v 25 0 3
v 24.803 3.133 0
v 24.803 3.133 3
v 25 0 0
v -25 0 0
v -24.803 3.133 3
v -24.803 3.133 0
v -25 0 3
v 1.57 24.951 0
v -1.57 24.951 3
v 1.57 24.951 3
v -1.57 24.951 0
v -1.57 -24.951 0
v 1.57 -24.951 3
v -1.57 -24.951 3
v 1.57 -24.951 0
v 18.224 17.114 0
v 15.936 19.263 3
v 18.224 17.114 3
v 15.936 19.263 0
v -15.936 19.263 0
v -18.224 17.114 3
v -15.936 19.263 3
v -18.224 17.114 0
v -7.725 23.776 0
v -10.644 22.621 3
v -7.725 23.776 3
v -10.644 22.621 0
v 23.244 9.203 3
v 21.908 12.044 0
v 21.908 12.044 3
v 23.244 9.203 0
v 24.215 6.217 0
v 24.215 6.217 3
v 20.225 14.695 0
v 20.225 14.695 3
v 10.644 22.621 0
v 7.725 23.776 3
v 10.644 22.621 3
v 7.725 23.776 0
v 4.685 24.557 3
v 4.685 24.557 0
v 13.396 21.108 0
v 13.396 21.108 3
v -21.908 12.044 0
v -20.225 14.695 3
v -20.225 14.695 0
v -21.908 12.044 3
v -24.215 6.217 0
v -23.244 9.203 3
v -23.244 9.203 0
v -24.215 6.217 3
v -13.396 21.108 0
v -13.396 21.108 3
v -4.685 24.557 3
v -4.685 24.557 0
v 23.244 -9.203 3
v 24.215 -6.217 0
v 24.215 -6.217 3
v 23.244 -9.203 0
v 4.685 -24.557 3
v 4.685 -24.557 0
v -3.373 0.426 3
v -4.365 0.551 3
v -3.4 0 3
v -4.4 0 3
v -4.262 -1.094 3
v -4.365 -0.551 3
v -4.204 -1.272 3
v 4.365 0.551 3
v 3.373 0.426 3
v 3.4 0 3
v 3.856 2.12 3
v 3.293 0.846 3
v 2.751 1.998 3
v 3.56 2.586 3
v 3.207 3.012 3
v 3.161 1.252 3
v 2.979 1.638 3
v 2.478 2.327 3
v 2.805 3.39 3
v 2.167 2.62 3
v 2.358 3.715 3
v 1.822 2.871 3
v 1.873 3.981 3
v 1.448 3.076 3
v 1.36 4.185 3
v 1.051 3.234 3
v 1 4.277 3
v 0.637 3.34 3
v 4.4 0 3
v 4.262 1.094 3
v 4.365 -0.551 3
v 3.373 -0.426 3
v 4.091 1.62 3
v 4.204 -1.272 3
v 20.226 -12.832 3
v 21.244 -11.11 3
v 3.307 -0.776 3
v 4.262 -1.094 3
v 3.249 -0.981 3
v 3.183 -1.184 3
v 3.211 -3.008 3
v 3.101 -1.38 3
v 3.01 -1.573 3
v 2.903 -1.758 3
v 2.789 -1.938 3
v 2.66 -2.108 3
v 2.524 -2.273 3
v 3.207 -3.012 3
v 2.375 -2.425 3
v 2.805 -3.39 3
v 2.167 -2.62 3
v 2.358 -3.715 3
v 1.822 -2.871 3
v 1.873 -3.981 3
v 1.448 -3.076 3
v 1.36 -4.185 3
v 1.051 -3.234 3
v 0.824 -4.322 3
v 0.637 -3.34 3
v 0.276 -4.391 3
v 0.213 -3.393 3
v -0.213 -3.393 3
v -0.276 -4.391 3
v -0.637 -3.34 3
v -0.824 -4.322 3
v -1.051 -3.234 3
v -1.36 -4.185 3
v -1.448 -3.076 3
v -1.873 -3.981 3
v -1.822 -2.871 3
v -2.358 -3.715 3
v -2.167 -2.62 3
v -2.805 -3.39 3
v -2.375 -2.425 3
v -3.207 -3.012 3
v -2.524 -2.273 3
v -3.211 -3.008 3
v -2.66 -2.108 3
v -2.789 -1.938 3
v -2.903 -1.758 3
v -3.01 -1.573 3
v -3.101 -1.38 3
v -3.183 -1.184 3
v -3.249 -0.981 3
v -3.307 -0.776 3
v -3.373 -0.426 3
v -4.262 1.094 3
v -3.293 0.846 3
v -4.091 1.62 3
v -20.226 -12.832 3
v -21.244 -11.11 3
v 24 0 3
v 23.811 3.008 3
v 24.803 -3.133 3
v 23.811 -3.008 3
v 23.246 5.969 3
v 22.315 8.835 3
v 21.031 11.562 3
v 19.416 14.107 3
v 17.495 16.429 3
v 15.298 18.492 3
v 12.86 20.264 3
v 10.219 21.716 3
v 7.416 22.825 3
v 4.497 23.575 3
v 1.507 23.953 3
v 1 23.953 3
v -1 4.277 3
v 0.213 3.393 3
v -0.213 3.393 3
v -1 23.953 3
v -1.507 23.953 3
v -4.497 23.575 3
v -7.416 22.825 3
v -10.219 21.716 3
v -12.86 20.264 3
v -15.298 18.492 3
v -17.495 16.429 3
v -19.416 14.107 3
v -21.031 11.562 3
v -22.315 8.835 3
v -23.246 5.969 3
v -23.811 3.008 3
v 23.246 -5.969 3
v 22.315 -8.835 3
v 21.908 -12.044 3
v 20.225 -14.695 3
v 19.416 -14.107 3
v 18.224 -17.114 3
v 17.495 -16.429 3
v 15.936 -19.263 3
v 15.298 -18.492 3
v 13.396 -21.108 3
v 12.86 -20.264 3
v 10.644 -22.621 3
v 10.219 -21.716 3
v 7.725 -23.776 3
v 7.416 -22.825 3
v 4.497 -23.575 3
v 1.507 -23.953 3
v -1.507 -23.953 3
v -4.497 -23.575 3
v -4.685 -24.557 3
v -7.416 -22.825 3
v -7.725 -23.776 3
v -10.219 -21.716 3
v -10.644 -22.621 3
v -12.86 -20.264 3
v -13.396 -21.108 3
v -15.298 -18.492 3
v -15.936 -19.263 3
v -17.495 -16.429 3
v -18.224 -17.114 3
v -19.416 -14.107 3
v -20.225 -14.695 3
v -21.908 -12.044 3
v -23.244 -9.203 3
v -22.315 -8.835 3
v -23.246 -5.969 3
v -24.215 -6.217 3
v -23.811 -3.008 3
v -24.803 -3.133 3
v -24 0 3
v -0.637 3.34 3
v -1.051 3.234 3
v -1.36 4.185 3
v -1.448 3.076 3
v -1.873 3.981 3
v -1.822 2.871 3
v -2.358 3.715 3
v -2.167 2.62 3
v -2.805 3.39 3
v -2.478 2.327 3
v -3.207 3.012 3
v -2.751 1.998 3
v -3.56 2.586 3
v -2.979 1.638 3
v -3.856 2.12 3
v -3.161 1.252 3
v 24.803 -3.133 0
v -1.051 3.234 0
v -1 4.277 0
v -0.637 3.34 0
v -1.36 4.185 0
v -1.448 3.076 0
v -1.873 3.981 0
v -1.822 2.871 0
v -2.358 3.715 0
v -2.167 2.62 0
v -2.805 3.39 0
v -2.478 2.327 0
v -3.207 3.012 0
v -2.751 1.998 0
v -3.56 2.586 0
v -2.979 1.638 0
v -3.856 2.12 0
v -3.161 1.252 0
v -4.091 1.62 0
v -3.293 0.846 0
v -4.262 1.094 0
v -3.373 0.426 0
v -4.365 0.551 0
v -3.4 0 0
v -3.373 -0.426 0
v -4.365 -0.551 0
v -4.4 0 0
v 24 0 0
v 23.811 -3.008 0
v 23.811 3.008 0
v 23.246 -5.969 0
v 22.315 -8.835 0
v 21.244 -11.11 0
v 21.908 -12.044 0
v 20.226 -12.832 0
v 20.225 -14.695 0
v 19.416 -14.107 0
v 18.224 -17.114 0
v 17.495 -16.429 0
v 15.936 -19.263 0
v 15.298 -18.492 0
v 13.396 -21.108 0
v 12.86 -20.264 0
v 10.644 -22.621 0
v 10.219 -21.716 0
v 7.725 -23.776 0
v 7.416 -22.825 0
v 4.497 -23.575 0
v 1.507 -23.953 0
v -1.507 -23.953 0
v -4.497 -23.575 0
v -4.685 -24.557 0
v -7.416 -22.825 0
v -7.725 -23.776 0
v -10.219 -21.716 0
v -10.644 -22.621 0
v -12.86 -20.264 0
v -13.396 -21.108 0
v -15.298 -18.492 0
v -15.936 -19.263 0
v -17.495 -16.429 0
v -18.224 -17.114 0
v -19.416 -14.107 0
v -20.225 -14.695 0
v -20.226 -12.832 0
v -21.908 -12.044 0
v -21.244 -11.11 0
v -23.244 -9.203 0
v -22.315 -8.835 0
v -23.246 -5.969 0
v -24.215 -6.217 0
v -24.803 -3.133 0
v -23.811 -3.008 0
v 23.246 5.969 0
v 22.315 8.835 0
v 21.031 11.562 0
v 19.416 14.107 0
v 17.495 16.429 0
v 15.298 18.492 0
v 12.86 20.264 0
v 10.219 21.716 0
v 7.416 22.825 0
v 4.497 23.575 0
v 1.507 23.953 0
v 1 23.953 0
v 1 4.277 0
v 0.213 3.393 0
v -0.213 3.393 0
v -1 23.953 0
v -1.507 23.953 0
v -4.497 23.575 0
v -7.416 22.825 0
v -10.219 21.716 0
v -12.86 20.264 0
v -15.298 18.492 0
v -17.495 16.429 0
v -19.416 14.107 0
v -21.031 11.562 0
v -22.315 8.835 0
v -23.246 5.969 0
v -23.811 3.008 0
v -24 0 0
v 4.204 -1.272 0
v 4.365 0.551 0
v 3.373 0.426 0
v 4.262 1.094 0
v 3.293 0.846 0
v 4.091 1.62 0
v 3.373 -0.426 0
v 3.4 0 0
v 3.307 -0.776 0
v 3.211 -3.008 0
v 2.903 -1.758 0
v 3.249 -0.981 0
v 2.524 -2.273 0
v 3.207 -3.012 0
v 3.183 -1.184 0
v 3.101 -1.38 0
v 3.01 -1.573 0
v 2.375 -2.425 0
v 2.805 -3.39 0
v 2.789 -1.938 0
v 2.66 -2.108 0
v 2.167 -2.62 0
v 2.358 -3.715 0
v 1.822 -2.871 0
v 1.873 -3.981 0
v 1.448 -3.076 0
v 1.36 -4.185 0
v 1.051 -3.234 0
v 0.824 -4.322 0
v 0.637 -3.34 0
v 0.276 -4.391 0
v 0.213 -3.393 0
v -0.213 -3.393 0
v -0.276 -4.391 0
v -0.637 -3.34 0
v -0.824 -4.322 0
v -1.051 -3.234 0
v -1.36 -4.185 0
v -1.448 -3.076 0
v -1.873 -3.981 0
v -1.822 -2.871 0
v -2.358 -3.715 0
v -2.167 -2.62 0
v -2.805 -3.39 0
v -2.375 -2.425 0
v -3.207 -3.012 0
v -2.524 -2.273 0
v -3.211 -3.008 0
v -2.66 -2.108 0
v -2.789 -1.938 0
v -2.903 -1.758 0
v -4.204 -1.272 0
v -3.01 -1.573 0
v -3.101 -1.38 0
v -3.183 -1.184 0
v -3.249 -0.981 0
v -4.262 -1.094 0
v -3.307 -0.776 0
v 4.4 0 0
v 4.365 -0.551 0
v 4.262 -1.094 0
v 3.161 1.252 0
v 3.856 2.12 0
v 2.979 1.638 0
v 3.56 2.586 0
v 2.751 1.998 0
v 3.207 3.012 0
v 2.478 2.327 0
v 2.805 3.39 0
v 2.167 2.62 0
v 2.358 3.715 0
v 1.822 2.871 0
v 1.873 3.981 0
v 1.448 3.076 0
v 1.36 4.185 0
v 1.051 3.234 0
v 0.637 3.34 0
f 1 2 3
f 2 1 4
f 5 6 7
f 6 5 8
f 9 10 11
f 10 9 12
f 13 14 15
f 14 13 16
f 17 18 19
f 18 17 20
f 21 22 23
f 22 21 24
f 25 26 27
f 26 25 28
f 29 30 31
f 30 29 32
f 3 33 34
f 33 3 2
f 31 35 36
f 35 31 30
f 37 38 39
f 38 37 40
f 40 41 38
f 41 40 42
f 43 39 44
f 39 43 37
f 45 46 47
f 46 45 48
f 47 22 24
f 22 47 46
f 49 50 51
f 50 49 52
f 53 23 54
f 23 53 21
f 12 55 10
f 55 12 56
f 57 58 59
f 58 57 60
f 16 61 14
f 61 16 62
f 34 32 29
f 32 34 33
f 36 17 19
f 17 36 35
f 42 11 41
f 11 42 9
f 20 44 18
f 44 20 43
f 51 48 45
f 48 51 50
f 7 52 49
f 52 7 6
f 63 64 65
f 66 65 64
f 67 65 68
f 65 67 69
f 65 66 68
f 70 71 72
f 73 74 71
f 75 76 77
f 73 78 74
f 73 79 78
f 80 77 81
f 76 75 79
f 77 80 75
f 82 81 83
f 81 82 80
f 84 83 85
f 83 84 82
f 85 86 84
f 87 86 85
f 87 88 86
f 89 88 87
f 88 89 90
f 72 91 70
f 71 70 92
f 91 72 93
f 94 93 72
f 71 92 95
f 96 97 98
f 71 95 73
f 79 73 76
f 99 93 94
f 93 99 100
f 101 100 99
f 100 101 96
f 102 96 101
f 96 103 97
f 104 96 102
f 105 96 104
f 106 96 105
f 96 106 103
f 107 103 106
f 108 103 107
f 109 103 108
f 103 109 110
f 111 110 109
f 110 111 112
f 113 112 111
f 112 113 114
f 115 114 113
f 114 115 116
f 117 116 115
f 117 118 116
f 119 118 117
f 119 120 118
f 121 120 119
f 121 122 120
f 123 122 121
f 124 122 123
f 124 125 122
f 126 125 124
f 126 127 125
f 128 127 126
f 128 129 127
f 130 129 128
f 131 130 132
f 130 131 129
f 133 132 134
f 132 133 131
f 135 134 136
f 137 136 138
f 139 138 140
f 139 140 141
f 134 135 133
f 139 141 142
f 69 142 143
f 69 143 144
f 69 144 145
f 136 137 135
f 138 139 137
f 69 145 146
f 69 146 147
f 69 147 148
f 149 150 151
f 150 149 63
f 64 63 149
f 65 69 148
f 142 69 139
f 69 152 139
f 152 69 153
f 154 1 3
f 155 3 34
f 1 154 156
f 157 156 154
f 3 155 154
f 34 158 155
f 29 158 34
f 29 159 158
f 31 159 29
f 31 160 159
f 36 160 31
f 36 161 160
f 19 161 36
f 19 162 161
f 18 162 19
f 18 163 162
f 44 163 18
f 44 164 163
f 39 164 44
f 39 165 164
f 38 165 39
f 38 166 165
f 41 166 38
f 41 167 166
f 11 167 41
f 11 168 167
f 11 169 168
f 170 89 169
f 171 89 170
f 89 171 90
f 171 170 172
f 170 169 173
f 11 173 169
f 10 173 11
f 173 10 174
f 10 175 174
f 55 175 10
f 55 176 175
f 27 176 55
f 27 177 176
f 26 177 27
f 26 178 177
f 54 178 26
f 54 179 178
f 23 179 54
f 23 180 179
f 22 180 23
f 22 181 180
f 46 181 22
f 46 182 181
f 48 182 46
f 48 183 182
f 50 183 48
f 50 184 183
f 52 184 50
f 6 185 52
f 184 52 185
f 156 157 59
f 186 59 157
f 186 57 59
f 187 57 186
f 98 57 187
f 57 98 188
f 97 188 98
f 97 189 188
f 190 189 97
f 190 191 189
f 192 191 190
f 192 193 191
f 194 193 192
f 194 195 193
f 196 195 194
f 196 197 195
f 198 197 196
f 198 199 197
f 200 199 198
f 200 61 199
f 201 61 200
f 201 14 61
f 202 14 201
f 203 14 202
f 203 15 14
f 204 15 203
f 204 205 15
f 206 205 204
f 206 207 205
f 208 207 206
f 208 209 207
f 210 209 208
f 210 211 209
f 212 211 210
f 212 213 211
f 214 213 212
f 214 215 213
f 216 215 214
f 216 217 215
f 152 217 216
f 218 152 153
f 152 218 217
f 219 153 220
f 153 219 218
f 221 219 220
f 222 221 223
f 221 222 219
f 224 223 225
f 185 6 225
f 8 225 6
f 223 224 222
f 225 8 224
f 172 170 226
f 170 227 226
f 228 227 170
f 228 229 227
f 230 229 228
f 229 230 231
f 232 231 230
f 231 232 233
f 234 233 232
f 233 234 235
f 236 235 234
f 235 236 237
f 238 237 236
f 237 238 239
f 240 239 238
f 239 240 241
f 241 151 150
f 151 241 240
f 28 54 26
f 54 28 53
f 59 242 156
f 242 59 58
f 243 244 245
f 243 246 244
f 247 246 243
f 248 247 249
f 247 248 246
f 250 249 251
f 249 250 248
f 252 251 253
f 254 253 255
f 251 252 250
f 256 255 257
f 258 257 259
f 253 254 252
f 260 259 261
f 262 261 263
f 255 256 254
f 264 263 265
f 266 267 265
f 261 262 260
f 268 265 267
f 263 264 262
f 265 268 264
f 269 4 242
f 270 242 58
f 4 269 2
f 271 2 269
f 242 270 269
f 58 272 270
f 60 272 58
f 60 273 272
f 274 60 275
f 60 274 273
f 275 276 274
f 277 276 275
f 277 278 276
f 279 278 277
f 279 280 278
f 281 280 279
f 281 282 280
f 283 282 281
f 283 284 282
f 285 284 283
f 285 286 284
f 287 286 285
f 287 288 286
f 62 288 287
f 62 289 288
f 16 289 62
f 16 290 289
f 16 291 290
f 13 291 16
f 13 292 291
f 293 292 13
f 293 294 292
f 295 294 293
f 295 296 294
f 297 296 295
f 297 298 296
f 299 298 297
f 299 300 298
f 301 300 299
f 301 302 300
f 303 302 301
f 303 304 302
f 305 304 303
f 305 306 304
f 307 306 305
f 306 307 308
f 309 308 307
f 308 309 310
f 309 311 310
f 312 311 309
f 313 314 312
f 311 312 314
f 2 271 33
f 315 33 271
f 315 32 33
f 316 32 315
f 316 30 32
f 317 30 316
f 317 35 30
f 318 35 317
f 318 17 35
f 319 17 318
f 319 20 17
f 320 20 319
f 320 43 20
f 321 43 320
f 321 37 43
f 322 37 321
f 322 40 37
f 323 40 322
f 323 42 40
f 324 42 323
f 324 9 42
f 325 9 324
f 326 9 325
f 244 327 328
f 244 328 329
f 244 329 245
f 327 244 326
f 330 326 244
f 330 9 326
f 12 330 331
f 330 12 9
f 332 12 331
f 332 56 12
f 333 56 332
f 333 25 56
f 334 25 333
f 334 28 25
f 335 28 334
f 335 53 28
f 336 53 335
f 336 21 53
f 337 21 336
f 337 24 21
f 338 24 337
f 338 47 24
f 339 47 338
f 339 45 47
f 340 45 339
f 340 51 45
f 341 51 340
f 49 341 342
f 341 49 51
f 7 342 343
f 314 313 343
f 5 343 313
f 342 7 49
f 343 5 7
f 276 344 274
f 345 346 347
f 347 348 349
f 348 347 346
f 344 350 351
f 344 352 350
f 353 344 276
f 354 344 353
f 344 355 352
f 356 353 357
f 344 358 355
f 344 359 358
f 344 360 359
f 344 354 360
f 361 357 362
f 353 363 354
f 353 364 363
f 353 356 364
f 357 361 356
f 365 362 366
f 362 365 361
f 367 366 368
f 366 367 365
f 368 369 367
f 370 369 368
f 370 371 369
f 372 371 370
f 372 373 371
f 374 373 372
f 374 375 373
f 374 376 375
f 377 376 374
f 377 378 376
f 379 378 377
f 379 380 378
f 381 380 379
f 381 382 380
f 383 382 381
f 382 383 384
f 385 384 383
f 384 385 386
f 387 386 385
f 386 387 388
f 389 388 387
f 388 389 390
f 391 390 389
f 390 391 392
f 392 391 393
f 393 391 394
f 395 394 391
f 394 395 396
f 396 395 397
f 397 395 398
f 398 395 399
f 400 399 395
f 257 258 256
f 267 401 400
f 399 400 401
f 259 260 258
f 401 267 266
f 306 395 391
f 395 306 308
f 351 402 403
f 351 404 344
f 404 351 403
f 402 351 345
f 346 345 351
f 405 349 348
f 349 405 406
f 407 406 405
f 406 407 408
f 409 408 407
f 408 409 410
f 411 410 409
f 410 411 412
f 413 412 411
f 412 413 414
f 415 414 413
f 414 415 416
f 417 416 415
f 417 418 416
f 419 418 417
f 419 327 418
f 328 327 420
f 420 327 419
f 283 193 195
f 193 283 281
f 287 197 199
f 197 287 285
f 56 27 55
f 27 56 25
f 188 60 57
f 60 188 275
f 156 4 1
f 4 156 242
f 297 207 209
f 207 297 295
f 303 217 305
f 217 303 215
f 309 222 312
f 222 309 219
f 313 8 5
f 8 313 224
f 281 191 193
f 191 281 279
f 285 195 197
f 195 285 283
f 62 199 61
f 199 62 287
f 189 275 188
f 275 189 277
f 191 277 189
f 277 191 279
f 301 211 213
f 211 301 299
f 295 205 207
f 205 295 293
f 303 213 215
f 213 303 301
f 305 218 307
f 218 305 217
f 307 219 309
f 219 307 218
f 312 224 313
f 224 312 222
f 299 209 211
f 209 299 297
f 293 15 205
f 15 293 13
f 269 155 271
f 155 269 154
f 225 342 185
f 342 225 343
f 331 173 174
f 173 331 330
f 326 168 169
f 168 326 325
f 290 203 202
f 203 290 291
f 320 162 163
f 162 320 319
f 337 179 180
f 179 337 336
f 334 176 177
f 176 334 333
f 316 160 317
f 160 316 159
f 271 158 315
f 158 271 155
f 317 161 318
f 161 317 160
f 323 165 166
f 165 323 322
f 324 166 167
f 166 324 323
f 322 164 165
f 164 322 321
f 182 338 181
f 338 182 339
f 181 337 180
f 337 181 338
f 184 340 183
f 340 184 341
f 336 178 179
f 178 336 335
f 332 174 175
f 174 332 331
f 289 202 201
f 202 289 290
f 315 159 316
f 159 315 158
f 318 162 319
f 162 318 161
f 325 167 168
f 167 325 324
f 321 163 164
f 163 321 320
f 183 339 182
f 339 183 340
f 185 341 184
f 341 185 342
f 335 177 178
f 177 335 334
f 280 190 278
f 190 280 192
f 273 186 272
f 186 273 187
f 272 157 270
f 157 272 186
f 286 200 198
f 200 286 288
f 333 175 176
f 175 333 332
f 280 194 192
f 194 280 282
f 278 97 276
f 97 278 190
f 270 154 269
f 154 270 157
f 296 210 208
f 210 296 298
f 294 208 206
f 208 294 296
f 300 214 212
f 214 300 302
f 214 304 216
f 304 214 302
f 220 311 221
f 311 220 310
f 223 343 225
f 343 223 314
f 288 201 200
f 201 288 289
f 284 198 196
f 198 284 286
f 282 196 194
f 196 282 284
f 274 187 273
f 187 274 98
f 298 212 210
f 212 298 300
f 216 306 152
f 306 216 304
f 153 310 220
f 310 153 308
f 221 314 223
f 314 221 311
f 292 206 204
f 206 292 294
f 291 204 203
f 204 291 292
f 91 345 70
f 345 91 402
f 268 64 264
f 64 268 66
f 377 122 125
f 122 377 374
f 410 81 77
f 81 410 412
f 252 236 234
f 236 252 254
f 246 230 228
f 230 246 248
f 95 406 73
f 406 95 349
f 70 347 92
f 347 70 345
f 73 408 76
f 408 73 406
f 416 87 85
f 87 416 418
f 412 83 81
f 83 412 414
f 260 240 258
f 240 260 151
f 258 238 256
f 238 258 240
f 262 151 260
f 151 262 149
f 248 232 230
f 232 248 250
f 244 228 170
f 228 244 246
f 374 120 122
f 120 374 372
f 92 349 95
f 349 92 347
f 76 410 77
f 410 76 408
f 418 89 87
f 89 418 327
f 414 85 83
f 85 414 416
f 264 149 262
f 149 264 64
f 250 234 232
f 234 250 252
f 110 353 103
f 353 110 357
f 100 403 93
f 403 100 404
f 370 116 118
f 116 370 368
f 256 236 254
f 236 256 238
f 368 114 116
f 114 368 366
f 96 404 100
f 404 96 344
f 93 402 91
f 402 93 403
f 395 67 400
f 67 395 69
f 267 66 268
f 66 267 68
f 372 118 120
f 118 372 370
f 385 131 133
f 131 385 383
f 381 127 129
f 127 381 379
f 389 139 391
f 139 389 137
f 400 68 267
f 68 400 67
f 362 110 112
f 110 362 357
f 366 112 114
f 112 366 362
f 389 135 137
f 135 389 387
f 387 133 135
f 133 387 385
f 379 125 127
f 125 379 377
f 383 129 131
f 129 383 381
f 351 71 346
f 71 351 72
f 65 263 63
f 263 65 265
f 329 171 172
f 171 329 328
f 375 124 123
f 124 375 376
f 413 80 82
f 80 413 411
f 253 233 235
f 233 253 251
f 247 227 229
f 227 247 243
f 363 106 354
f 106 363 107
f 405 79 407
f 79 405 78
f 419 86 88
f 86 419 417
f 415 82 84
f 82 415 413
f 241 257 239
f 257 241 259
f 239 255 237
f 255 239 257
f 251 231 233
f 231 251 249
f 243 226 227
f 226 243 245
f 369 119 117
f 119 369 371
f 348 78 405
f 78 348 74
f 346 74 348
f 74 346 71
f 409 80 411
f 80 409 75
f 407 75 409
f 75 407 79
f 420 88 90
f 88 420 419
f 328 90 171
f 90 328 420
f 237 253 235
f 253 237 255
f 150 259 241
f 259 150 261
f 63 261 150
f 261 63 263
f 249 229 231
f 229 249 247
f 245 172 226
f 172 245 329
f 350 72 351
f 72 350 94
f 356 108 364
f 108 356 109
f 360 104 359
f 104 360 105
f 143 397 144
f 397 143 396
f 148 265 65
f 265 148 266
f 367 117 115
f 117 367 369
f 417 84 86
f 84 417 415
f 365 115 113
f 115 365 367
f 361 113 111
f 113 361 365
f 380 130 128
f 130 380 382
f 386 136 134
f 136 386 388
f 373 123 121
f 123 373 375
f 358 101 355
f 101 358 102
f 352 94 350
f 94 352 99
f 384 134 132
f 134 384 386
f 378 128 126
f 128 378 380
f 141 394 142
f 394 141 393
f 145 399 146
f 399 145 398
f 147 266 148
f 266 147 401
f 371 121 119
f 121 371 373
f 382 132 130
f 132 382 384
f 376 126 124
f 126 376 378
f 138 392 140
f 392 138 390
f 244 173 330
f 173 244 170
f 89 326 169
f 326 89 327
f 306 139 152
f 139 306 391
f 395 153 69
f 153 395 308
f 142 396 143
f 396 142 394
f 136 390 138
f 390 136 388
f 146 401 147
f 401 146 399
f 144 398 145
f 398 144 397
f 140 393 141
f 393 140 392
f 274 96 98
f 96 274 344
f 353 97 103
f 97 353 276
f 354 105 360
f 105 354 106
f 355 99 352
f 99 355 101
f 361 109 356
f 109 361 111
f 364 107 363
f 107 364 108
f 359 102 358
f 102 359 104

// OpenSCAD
flywheel_width = 25;
flywheel_height = 3;

flywheel_outer_width = 1;
flywheel_inner_width = 1;

pot_width = 6.8/2;
strut_width = 2;

//resolution
$fn=50;


module  InnerRim() {
    distanceToInnerRim = flywheel_inner_width + pot_width;
    difference() {
        cylinder(flywheel_height, distanceToInnerRim, distanceToInnerRim, false);    
        cylinder(flywheel_height, pot_width, pot_width, false);
    }
}

//wheel with hole in the middle
module OuterRim()    {
    distanceToOuterRim = flywheel_width - flywheel_outer_width ;
    difference() {
        cylinder(flywheel_height, flywheel_width, flywheel_width, false);
        cylinder(flywheel_height, distanceToOuterRim, distanceToOuterRim, false);
    }
}

module Struts() {
    rotate([0, 0, 0]) { Strut();
        rotate([0, 0, 120]) { Strut();
            rotate([0, 0, 120]) { Strut();
    } } }
}

module Strut() {
     strut_length = flywheel_width - flywheel_outer_width;
     difference() {
        translate([-strut_width/2, 0, 0]) {
            cube([ strut_width, strut_length, flywheel_height ],false);
        }
        cylinder(flywheel_height, pot_width, pot_width, false);
    }
}


module HalfOuterRim() {
    difference() {
        OuterRim();
        translate([-flywheel_width, 0, 0], false) {
            cube([flywheel_width * 2,flywheel_width,flywheel_height], false);
        }
    }
}

OuterRim();
InnerRim();
Struts();
 
